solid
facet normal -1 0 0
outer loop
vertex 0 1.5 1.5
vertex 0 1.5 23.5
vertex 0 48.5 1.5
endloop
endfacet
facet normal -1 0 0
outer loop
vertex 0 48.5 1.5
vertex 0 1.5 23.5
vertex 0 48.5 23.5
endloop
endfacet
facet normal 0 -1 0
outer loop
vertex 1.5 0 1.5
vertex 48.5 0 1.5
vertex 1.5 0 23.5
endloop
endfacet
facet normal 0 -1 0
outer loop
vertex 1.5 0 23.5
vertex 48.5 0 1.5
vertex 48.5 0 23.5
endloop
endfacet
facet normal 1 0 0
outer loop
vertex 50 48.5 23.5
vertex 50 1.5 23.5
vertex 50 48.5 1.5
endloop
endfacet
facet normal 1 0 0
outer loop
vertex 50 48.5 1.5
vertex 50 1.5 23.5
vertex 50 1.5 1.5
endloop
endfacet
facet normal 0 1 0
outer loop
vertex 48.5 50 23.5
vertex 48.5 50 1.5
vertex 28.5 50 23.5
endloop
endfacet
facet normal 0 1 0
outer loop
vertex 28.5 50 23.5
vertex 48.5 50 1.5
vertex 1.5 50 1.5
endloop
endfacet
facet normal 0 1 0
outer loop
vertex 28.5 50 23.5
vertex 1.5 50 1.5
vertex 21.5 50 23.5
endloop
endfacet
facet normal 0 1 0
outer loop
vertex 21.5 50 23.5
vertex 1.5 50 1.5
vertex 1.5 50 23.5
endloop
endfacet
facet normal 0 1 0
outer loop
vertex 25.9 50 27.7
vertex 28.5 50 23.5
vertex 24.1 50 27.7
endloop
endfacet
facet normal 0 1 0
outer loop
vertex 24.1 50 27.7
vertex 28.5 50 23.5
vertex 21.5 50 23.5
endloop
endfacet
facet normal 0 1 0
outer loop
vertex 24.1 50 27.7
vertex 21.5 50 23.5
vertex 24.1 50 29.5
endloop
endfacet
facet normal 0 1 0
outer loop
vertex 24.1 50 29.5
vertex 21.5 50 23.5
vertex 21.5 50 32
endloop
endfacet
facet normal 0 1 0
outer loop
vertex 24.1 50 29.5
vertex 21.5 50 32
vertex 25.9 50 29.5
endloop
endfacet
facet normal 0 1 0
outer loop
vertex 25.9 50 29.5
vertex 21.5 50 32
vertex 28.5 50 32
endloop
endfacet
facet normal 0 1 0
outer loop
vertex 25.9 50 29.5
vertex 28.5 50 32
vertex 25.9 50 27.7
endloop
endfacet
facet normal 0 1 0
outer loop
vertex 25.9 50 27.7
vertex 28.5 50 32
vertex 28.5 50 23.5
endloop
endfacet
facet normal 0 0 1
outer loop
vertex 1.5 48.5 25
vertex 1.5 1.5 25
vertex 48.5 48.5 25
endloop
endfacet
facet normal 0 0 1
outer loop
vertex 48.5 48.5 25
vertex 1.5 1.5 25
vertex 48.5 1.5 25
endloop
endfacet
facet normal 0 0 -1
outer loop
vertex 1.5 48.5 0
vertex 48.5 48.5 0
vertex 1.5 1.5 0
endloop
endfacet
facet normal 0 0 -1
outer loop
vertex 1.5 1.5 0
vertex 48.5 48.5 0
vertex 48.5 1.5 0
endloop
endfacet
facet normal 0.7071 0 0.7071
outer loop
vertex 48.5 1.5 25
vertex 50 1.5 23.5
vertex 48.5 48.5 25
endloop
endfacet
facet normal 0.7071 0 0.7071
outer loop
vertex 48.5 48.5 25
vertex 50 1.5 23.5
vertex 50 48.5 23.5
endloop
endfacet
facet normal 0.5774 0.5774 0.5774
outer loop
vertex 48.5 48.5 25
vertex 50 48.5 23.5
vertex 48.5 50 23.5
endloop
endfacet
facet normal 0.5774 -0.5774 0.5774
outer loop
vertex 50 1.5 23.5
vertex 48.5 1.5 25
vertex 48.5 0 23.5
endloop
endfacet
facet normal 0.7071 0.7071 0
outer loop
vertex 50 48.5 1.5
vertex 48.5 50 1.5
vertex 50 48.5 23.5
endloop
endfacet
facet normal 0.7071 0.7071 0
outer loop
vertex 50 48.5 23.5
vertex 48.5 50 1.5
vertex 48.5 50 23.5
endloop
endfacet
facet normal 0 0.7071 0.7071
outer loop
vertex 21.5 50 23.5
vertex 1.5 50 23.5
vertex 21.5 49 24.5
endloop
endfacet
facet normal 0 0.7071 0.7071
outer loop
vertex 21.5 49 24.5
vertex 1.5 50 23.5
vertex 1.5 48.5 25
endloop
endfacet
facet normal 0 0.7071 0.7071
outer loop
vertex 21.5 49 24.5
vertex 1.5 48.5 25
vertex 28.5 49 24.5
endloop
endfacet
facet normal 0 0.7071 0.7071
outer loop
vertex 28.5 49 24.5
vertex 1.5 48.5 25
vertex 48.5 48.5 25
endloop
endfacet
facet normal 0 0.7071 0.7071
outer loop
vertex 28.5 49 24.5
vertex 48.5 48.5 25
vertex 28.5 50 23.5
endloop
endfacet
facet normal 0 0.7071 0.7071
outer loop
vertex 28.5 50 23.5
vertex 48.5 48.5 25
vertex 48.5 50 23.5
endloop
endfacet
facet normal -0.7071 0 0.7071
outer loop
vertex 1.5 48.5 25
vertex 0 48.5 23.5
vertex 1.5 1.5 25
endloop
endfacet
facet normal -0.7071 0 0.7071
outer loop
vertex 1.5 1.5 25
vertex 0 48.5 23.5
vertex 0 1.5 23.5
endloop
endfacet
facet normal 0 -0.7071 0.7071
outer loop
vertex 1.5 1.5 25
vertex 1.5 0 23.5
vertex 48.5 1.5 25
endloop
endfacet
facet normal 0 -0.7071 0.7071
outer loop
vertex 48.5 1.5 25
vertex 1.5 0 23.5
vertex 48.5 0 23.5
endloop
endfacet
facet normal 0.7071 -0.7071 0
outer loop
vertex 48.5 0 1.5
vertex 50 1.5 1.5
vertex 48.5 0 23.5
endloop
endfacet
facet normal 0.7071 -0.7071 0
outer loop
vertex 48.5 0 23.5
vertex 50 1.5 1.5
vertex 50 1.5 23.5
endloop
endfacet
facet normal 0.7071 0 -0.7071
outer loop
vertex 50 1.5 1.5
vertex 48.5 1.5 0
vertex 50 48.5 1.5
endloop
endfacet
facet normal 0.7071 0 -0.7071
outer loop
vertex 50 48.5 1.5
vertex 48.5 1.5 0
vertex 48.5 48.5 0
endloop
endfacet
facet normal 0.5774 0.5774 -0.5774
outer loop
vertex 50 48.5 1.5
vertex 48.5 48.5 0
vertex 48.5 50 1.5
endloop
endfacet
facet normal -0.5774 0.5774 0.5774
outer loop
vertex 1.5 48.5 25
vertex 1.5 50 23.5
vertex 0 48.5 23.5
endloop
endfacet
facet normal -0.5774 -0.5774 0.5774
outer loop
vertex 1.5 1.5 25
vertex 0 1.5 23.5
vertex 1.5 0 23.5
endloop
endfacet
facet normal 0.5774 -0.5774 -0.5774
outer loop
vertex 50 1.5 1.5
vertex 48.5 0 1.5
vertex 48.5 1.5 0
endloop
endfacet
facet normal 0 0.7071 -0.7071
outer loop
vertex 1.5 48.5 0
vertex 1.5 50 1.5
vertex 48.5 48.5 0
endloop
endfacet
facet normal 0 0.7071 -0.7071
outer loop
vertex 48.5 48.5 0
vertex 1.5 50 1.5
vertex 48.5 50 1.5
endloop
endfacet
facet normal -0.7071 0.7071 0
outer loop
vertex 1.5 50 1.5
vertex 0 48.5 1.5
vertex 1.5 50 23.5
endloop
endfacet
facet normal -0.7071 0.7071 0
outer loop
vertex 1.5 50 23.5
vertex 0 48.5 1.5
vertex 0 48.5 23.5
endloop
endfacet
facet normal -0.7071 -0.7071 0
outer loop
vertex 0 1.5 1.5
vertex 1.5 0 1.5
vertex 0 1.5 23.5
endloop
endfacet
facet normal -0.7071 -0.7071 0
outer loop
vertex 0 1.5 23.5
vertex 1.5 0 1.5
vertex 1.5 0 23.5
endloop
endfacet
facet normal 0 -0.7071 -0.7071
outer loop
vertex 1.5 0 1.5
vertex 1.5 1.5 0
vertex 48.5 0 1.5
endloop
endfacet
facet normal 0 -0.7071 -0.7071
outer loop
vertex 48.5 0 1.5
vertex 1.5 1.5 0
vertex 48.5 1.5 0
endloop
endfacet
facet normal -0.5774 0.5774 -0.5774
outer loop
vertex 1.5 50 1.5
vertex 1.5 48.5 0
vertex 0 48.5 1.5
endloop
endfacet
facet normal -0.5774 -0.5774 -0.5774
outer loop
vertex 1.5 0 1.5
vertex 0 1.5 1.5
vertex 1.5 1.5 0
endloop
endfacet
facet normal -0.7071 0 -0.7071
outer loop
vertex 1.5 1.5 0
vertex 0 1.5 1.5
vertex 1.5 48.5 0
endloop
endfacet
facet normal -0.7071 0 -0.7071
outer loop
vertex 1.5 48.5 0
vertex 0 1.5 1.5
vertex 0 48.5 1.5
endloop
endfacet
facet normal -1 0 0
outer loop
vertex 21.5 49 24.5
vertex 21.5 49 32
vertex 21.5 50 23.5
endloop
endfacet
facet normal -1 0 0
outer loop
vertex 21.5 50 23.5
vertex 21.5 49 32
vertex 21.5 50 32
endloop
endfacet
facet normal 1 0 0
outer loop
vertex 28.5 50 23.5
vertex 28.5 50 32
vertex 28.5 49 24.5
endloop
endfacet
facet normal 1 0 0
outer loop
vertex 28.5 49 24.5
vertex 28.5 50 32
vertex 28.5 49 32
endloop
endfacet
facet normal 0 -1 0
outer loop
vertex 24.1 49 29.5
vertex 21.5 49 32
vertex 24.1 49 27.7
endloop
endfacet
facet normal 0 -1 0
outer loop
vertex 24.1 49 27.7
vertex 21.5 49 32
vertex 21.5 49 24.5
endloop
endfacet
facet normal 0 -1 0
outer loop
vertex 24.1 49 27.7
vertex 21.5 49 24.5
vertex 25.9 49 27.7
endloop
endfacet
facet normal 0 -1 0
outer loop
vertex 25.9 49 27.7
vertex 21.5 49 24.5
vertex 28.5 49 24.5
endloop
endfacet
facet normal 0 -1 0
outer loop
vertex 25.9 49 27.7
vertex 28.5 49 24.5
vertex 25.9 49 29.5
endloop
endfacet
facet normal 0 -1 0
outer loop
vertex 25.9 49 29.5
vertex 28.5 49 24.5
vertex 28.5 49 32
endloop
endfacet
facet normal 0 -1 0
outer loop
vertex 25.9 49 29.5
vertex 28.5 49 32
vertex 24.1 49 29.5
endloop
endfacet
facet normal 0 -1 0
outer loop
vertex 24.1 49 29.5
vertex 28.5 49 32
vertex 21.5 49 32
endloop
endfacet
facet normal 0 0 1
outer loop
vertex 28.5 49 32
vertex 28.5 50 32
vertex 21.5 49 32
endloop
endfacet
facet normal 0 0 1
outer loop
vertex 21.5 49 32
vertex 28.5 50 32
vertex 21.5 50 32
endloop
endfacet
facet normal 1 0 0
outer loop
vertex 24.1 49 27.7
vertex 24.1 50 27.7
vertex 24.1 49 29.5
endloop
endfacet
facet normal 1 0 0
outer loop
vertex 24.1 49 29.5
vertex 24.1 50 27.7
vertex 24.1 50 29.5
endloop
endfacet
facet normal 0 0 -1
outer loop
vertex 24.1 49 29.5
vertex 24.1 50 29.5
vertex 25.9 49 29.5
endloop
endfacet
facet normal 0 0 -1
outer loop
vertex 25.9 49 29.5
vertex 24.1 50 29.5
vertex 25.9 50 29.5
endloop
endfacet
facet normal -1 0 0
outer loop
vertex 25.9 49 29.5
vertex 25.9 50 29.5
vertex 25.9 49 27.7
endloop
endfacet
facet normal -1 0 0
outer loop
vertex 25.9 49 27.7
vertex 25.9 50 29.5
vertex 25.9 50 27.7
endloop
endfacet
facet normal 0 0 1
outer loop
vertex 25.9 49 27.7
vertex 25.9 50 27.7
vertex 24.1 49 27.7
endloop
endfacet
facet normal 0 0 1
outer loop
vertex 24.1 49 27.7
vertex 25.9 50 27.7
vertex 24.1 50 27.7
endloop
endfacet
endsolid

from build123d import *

# Parameters (mm, degrees)
SKETCH1_W                = 50
SKETCH1_H                = 50
BOSS_EXTRUDE1_DEPTH      = 25
CHAMFER1_SIZE            = 1.5
BOSS_EXTRUDE2_DEPTH      = 7
BOSS_EXTRUDE2_DEPTH_BACK = 10
SKETCH2_W                = 7
SKETCH2_H                = 1
SKETCH3_W                = 1.8
SKETCH3_H                = 1.8
CUT_EXTRUDE1_DEPTH       = 7


with BuildPart() as part:
    # Sketch1 → Boss-Extrude1 (new body)
    with BuildSketch(Plane.XY):
        with Locations((25, 25)):
            Rectangle(SKETCH1_W, SKETCH1_H)
    extrude(amount=BOSS_EXTRUDE1_DEPTH)

    # Chamfer1
    chamfer1_edges = [part.edges().sort_by_distance(p)[0] for p in [
        (50, 25, 25),
        (25, 50, 25),
        (0, 25, 25),
        (25, 50, 0),
        (50, 25, 0),
        (25, 0, 0),
        (0, 25, 0),
        (25, 0, 25),
        (0, 50, 12.5),
        (50, 50, 12.5),
        (50, 0, 12.5),
        (0, 0, 12.5),
    ]]
    chamfer(chamfer1_edges, length=CHAMFER1_SIZE)

    # Sketch2 → Boss-Extrude2 (add, two sides: drawn at the far end of the back side and taken through both)
    with BuildSketch(Plane.XY.offset(25).offset(-BOSS_EXTRUDE2_DEPTH_BACK)):
        with Locations((25, 49.5)):
            Rectangle(SKETCH2_W, SKETCH2_H)
    extrude(amount=BOSS_EXTRUDE2_DEPTH + BOSS_EXTRUDE2_DEPTH_BACK)

    # Sketch3 → Cut-Extrude1 (cut)
    with BuildSketch(Plane.XZ.offset(-49)):
        with Locations((25, 28.6)):
            Rectangle(SKETCH3_W, SKETCH3_H)
    extrude(amount=-CUT_EXTRUDE1_DEPTH, mode=Mode.SUBTRACT)


solid = part.part
